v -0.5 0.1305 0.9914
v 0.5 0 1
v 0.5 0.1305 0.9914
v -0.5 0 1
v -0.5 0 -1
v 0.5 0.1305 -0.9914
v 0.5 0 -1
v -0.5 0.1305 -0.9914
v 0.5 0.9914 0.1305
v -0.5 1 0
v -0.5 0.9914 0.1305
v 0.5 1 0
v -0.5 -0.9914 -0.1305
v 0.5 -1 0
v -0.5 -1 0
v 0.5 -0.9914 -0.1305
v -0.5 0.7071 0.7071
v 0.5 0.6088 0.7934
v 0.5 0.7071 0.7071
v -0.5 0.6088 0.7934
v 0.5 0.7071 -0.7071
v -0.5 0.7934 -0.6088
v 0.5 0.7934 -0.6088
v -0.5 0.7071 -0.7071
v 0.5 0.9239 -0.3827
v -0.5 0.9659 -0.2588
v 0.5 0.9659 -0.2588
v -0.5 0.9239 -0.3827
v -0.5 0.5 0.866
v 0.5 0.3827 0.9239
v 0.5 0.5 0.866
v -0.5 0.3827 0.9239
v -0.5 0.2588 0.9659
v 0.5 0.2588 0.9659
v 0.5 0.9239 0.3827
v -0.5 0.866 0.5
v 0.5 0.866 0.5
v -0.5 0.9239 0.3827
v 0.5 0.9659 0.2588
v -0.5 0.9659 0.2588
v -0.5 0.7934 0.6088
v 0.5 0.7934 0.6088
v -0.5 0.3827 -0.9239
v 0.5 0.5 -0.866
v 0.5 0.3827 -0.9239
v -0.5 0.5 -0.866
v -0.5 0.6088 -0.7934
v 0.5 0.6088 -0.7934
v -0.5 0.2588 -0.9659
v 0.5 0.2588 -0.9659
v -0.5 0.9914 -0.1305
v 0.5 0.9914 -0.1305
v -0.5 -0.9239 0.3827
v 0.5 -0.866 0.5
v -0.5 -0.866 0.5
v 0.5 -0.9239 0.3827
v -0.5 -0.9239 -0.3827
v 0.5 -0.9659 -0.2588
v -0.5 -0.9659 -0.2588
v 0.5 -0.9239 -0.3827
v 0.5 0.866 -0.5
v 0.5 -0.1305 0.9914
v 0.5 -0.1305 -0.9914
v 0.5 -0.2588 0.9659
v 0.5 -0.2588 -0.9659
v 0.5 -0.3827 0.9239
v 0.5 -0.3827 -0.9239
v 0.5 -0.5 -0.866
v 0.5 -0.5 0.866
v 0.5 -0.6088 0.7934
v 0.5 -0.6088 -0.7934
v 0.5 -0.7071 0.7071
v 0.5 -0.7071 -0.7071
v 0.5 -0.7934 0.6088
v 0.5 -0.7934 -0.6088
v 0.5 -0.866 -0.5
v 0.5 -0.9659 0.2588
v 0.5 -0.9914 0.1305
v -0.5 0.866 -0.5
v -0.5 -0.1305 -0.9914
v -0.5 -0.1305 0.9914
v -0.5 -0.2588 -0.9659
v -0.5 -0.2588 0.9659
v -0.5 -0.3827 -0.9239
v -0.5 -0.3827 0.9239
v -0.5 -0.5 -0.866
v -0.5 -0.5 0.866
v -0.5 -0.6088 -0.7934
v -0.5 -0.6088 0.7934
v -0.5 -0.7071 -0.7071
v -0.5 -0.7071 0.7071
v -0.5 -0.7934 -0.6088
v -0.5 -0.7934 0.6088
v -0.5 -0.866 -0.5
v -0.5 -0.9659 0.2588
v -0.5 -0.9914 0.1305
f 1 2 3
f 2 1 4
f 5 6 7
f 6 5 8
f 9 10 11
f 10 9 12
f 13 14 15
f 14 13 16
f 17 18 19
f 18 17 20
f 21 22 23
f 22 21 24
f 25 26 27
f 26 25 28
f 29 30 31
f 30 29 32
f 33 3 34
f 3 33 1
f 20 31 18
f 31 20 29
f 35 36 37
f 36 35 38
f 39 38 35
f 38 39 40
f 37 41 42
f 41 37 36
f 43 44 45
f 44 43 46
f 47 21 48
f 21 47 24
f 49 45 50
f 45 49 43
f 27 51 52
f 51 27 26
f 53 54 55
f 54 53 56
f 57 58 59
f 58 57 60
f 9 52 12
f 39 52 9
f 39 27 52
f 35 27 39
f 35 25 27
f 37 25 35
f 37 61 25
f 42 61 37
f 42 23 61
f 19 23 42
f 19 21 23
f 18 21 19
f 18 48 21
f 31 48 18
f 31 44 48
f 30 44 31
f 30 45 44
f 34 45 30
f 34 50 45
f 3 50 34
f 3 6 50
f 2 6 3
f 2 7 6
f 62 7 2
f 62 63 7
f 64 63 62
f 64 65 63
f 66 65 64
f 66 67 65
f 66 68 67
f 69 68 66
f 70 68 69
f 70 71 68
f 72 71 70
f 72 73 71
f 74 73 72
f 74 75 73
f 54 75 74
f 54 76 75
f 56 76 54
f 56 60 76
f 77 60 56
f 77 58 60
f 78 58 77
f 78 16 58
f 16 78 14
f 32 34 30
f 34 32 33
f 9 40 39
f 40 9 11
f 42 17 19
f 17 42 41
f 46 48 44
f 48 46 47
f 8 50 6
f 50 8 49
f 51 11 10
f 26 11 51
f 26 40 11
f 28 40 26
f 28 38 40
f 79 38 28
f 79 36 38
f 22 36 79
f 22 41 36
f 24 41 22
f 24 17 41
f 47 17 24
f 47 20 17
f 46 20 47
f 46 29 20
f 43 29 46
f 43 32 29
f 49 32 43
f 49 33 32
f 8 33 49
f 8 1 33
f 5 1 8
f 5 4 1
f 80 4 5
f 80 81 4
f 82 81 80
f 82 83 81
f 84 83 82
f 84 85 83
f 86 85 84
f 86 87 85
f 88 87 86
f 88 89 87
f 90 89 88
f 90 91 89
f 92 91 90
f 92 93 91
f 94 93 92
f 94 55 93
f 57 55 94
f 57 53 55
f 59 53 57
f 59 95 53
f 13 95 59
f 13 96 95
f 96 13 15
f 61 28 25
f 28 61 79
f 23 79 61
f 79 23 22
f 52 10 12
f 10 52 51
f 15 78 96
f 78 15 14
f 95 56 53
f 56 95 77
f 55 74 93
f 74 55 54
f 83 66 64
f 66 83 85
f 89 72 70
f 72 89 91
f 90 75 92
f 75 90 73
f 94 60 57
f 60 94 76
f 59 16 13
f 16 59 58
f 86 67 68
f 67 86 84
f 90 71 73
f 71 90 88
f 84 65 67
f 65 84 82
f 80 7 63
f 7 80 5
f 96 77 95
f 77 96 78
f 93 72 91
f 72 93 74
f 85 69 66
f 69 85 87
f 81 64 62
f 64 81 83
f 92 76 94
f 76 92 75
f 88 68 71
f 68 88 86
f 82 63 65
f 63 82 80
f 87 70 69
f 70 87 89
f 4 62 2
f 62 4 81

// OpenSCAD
// file: ../../lib/nutsnbolts/data-access.scad
// Norm Nuts and Bolts - a OpenSCAD library
// Copyright (C) 2012  Johannes Kneer

// This program is free software: you can redistribute it and/or modify
// it under the terms of the GNU General Public License as published by
// the Free Software Foundation, either version 3 of the License, or
// (at your option) any later version.

// This program is distributed in the hope that it will be useful,
// but WITHOUT ANY WARRANTY; without even the implied warranty of
// MERCHANTABILITY or FITNESS FOR A PARTICULAR PURPOSE.  See the
// GNU General Public License for more details.

// You should have received a copy of the GNU General Public License
// along with this program.  If not, see <http://www.gnu.org/licenses/>.


// DATABASE ACCESS FUNCTIONS AND CONSTANTS



// == CONSTANTS ==

// screw table access keys
_NB_S_DESC            = 0;
_NB_S_FAMKEY			    = 1;
_NB_S_LENGTH          = 2;
_NB_S_NOTHREAD_LENGTH = 3;

_NB_F_DESC			      = 0;
_NB_F_OUTER_DIA       = 1;
_NB_F_INNER_DIA       = 2;
_NB_F_LEAD            = 3;
_NB_F_KEY             = 4;
_NB_F_KEY_DEPTH       = 5;
_NB_F_HEAD_HEIGHT     = 6;
_NB_F_HEAD_DIA        = 7;
_NB_F_NUT_KEY         = 8;
_NB_F_NUT_HEIGHT      = 9;
_NB_F_PITCH_FINE      = 10;
_NB_F_PITCH_MEDIUM    = 11;
_NB_F_PITCH_COARSE    = 12;


// == FUNCTIONS ==

// _get_screw("descriptor")   with descriptor = M8x25
//   find the line for a general object in the data matrix

function _get_screw(n) = data_screw[search([n], data_screw)[0]];
function _get_screw_fam(n) = data_screw_fam[search([_get_screw(n)[_NB_S_FAMKEY]], data_screw_fam)[0]];

function _get_fam(n) = data_screw_fam[search([n], data_screw_fam)[0]];


// _get_XXXXX("descriptor") functions
// find a single property in the database

function _get_desc(n)        = _get_screw(n)[_NB_S_DESC];
function _get_famkey(n)         = _get_screw(n)[_NB_S_FAMKEY];
function _get_length(n)      = _get_screw(n)[_NB_S_LENGTH];
function _get_nt_length(n)   = _get_screw(n)[_NB_S_NOTHREAD_LENGTH];

function _get_outer_dia(n)   = _get_screw_fam(n)[_NB_F_OUTER_DIA];
function _get_inner_dia(n)   = _get_screw_fam(n)[_NB_F_INNER_DIA];
function _get_lead(n)        = _get_screw_fam(n)[_NB_F_LEAD];
function _get_head_height(n) = _get_screw_fam(n)[_NB_F_HEAD_HEIGHT];
function _get_head_dia(n)    = _get_screw_fam(n)[_NB_F_HEAD_DIA];
function _get_nut_key(n)     = _get_screw_fam(n)[_NB_F_NUT_KEY];
function _get_nut_height(n)  = _get_screw_fam(n)[_NB_F_NUT_HEIGHT];
function _get_fine_pitch(n)  = _get_screw_fam(n)[_NB_F_PITCH_FINE];
function _get_medium_pitch(n)  = _get_screw_fam(n)[_NB_F_PITCH_MEDIUM];
function _get_coarse_pitch(n)  = _get_screw_fam(n)[_NB_F_PITCH_COARSE];
// main file
/**********************************************************************************************************************
 **
 ** parts/vitamins/screw_M4x45.scad
 **
 ** This file renders a screw of the dimensions specified by the file name.
 **
 **********************************************************************************************************************/

include <../../lib/nutsnbolts/cyl_head_bolt.scad>;

$fn = 48;
rotate([0, -90, 0])
	screw("M4x45"); 
